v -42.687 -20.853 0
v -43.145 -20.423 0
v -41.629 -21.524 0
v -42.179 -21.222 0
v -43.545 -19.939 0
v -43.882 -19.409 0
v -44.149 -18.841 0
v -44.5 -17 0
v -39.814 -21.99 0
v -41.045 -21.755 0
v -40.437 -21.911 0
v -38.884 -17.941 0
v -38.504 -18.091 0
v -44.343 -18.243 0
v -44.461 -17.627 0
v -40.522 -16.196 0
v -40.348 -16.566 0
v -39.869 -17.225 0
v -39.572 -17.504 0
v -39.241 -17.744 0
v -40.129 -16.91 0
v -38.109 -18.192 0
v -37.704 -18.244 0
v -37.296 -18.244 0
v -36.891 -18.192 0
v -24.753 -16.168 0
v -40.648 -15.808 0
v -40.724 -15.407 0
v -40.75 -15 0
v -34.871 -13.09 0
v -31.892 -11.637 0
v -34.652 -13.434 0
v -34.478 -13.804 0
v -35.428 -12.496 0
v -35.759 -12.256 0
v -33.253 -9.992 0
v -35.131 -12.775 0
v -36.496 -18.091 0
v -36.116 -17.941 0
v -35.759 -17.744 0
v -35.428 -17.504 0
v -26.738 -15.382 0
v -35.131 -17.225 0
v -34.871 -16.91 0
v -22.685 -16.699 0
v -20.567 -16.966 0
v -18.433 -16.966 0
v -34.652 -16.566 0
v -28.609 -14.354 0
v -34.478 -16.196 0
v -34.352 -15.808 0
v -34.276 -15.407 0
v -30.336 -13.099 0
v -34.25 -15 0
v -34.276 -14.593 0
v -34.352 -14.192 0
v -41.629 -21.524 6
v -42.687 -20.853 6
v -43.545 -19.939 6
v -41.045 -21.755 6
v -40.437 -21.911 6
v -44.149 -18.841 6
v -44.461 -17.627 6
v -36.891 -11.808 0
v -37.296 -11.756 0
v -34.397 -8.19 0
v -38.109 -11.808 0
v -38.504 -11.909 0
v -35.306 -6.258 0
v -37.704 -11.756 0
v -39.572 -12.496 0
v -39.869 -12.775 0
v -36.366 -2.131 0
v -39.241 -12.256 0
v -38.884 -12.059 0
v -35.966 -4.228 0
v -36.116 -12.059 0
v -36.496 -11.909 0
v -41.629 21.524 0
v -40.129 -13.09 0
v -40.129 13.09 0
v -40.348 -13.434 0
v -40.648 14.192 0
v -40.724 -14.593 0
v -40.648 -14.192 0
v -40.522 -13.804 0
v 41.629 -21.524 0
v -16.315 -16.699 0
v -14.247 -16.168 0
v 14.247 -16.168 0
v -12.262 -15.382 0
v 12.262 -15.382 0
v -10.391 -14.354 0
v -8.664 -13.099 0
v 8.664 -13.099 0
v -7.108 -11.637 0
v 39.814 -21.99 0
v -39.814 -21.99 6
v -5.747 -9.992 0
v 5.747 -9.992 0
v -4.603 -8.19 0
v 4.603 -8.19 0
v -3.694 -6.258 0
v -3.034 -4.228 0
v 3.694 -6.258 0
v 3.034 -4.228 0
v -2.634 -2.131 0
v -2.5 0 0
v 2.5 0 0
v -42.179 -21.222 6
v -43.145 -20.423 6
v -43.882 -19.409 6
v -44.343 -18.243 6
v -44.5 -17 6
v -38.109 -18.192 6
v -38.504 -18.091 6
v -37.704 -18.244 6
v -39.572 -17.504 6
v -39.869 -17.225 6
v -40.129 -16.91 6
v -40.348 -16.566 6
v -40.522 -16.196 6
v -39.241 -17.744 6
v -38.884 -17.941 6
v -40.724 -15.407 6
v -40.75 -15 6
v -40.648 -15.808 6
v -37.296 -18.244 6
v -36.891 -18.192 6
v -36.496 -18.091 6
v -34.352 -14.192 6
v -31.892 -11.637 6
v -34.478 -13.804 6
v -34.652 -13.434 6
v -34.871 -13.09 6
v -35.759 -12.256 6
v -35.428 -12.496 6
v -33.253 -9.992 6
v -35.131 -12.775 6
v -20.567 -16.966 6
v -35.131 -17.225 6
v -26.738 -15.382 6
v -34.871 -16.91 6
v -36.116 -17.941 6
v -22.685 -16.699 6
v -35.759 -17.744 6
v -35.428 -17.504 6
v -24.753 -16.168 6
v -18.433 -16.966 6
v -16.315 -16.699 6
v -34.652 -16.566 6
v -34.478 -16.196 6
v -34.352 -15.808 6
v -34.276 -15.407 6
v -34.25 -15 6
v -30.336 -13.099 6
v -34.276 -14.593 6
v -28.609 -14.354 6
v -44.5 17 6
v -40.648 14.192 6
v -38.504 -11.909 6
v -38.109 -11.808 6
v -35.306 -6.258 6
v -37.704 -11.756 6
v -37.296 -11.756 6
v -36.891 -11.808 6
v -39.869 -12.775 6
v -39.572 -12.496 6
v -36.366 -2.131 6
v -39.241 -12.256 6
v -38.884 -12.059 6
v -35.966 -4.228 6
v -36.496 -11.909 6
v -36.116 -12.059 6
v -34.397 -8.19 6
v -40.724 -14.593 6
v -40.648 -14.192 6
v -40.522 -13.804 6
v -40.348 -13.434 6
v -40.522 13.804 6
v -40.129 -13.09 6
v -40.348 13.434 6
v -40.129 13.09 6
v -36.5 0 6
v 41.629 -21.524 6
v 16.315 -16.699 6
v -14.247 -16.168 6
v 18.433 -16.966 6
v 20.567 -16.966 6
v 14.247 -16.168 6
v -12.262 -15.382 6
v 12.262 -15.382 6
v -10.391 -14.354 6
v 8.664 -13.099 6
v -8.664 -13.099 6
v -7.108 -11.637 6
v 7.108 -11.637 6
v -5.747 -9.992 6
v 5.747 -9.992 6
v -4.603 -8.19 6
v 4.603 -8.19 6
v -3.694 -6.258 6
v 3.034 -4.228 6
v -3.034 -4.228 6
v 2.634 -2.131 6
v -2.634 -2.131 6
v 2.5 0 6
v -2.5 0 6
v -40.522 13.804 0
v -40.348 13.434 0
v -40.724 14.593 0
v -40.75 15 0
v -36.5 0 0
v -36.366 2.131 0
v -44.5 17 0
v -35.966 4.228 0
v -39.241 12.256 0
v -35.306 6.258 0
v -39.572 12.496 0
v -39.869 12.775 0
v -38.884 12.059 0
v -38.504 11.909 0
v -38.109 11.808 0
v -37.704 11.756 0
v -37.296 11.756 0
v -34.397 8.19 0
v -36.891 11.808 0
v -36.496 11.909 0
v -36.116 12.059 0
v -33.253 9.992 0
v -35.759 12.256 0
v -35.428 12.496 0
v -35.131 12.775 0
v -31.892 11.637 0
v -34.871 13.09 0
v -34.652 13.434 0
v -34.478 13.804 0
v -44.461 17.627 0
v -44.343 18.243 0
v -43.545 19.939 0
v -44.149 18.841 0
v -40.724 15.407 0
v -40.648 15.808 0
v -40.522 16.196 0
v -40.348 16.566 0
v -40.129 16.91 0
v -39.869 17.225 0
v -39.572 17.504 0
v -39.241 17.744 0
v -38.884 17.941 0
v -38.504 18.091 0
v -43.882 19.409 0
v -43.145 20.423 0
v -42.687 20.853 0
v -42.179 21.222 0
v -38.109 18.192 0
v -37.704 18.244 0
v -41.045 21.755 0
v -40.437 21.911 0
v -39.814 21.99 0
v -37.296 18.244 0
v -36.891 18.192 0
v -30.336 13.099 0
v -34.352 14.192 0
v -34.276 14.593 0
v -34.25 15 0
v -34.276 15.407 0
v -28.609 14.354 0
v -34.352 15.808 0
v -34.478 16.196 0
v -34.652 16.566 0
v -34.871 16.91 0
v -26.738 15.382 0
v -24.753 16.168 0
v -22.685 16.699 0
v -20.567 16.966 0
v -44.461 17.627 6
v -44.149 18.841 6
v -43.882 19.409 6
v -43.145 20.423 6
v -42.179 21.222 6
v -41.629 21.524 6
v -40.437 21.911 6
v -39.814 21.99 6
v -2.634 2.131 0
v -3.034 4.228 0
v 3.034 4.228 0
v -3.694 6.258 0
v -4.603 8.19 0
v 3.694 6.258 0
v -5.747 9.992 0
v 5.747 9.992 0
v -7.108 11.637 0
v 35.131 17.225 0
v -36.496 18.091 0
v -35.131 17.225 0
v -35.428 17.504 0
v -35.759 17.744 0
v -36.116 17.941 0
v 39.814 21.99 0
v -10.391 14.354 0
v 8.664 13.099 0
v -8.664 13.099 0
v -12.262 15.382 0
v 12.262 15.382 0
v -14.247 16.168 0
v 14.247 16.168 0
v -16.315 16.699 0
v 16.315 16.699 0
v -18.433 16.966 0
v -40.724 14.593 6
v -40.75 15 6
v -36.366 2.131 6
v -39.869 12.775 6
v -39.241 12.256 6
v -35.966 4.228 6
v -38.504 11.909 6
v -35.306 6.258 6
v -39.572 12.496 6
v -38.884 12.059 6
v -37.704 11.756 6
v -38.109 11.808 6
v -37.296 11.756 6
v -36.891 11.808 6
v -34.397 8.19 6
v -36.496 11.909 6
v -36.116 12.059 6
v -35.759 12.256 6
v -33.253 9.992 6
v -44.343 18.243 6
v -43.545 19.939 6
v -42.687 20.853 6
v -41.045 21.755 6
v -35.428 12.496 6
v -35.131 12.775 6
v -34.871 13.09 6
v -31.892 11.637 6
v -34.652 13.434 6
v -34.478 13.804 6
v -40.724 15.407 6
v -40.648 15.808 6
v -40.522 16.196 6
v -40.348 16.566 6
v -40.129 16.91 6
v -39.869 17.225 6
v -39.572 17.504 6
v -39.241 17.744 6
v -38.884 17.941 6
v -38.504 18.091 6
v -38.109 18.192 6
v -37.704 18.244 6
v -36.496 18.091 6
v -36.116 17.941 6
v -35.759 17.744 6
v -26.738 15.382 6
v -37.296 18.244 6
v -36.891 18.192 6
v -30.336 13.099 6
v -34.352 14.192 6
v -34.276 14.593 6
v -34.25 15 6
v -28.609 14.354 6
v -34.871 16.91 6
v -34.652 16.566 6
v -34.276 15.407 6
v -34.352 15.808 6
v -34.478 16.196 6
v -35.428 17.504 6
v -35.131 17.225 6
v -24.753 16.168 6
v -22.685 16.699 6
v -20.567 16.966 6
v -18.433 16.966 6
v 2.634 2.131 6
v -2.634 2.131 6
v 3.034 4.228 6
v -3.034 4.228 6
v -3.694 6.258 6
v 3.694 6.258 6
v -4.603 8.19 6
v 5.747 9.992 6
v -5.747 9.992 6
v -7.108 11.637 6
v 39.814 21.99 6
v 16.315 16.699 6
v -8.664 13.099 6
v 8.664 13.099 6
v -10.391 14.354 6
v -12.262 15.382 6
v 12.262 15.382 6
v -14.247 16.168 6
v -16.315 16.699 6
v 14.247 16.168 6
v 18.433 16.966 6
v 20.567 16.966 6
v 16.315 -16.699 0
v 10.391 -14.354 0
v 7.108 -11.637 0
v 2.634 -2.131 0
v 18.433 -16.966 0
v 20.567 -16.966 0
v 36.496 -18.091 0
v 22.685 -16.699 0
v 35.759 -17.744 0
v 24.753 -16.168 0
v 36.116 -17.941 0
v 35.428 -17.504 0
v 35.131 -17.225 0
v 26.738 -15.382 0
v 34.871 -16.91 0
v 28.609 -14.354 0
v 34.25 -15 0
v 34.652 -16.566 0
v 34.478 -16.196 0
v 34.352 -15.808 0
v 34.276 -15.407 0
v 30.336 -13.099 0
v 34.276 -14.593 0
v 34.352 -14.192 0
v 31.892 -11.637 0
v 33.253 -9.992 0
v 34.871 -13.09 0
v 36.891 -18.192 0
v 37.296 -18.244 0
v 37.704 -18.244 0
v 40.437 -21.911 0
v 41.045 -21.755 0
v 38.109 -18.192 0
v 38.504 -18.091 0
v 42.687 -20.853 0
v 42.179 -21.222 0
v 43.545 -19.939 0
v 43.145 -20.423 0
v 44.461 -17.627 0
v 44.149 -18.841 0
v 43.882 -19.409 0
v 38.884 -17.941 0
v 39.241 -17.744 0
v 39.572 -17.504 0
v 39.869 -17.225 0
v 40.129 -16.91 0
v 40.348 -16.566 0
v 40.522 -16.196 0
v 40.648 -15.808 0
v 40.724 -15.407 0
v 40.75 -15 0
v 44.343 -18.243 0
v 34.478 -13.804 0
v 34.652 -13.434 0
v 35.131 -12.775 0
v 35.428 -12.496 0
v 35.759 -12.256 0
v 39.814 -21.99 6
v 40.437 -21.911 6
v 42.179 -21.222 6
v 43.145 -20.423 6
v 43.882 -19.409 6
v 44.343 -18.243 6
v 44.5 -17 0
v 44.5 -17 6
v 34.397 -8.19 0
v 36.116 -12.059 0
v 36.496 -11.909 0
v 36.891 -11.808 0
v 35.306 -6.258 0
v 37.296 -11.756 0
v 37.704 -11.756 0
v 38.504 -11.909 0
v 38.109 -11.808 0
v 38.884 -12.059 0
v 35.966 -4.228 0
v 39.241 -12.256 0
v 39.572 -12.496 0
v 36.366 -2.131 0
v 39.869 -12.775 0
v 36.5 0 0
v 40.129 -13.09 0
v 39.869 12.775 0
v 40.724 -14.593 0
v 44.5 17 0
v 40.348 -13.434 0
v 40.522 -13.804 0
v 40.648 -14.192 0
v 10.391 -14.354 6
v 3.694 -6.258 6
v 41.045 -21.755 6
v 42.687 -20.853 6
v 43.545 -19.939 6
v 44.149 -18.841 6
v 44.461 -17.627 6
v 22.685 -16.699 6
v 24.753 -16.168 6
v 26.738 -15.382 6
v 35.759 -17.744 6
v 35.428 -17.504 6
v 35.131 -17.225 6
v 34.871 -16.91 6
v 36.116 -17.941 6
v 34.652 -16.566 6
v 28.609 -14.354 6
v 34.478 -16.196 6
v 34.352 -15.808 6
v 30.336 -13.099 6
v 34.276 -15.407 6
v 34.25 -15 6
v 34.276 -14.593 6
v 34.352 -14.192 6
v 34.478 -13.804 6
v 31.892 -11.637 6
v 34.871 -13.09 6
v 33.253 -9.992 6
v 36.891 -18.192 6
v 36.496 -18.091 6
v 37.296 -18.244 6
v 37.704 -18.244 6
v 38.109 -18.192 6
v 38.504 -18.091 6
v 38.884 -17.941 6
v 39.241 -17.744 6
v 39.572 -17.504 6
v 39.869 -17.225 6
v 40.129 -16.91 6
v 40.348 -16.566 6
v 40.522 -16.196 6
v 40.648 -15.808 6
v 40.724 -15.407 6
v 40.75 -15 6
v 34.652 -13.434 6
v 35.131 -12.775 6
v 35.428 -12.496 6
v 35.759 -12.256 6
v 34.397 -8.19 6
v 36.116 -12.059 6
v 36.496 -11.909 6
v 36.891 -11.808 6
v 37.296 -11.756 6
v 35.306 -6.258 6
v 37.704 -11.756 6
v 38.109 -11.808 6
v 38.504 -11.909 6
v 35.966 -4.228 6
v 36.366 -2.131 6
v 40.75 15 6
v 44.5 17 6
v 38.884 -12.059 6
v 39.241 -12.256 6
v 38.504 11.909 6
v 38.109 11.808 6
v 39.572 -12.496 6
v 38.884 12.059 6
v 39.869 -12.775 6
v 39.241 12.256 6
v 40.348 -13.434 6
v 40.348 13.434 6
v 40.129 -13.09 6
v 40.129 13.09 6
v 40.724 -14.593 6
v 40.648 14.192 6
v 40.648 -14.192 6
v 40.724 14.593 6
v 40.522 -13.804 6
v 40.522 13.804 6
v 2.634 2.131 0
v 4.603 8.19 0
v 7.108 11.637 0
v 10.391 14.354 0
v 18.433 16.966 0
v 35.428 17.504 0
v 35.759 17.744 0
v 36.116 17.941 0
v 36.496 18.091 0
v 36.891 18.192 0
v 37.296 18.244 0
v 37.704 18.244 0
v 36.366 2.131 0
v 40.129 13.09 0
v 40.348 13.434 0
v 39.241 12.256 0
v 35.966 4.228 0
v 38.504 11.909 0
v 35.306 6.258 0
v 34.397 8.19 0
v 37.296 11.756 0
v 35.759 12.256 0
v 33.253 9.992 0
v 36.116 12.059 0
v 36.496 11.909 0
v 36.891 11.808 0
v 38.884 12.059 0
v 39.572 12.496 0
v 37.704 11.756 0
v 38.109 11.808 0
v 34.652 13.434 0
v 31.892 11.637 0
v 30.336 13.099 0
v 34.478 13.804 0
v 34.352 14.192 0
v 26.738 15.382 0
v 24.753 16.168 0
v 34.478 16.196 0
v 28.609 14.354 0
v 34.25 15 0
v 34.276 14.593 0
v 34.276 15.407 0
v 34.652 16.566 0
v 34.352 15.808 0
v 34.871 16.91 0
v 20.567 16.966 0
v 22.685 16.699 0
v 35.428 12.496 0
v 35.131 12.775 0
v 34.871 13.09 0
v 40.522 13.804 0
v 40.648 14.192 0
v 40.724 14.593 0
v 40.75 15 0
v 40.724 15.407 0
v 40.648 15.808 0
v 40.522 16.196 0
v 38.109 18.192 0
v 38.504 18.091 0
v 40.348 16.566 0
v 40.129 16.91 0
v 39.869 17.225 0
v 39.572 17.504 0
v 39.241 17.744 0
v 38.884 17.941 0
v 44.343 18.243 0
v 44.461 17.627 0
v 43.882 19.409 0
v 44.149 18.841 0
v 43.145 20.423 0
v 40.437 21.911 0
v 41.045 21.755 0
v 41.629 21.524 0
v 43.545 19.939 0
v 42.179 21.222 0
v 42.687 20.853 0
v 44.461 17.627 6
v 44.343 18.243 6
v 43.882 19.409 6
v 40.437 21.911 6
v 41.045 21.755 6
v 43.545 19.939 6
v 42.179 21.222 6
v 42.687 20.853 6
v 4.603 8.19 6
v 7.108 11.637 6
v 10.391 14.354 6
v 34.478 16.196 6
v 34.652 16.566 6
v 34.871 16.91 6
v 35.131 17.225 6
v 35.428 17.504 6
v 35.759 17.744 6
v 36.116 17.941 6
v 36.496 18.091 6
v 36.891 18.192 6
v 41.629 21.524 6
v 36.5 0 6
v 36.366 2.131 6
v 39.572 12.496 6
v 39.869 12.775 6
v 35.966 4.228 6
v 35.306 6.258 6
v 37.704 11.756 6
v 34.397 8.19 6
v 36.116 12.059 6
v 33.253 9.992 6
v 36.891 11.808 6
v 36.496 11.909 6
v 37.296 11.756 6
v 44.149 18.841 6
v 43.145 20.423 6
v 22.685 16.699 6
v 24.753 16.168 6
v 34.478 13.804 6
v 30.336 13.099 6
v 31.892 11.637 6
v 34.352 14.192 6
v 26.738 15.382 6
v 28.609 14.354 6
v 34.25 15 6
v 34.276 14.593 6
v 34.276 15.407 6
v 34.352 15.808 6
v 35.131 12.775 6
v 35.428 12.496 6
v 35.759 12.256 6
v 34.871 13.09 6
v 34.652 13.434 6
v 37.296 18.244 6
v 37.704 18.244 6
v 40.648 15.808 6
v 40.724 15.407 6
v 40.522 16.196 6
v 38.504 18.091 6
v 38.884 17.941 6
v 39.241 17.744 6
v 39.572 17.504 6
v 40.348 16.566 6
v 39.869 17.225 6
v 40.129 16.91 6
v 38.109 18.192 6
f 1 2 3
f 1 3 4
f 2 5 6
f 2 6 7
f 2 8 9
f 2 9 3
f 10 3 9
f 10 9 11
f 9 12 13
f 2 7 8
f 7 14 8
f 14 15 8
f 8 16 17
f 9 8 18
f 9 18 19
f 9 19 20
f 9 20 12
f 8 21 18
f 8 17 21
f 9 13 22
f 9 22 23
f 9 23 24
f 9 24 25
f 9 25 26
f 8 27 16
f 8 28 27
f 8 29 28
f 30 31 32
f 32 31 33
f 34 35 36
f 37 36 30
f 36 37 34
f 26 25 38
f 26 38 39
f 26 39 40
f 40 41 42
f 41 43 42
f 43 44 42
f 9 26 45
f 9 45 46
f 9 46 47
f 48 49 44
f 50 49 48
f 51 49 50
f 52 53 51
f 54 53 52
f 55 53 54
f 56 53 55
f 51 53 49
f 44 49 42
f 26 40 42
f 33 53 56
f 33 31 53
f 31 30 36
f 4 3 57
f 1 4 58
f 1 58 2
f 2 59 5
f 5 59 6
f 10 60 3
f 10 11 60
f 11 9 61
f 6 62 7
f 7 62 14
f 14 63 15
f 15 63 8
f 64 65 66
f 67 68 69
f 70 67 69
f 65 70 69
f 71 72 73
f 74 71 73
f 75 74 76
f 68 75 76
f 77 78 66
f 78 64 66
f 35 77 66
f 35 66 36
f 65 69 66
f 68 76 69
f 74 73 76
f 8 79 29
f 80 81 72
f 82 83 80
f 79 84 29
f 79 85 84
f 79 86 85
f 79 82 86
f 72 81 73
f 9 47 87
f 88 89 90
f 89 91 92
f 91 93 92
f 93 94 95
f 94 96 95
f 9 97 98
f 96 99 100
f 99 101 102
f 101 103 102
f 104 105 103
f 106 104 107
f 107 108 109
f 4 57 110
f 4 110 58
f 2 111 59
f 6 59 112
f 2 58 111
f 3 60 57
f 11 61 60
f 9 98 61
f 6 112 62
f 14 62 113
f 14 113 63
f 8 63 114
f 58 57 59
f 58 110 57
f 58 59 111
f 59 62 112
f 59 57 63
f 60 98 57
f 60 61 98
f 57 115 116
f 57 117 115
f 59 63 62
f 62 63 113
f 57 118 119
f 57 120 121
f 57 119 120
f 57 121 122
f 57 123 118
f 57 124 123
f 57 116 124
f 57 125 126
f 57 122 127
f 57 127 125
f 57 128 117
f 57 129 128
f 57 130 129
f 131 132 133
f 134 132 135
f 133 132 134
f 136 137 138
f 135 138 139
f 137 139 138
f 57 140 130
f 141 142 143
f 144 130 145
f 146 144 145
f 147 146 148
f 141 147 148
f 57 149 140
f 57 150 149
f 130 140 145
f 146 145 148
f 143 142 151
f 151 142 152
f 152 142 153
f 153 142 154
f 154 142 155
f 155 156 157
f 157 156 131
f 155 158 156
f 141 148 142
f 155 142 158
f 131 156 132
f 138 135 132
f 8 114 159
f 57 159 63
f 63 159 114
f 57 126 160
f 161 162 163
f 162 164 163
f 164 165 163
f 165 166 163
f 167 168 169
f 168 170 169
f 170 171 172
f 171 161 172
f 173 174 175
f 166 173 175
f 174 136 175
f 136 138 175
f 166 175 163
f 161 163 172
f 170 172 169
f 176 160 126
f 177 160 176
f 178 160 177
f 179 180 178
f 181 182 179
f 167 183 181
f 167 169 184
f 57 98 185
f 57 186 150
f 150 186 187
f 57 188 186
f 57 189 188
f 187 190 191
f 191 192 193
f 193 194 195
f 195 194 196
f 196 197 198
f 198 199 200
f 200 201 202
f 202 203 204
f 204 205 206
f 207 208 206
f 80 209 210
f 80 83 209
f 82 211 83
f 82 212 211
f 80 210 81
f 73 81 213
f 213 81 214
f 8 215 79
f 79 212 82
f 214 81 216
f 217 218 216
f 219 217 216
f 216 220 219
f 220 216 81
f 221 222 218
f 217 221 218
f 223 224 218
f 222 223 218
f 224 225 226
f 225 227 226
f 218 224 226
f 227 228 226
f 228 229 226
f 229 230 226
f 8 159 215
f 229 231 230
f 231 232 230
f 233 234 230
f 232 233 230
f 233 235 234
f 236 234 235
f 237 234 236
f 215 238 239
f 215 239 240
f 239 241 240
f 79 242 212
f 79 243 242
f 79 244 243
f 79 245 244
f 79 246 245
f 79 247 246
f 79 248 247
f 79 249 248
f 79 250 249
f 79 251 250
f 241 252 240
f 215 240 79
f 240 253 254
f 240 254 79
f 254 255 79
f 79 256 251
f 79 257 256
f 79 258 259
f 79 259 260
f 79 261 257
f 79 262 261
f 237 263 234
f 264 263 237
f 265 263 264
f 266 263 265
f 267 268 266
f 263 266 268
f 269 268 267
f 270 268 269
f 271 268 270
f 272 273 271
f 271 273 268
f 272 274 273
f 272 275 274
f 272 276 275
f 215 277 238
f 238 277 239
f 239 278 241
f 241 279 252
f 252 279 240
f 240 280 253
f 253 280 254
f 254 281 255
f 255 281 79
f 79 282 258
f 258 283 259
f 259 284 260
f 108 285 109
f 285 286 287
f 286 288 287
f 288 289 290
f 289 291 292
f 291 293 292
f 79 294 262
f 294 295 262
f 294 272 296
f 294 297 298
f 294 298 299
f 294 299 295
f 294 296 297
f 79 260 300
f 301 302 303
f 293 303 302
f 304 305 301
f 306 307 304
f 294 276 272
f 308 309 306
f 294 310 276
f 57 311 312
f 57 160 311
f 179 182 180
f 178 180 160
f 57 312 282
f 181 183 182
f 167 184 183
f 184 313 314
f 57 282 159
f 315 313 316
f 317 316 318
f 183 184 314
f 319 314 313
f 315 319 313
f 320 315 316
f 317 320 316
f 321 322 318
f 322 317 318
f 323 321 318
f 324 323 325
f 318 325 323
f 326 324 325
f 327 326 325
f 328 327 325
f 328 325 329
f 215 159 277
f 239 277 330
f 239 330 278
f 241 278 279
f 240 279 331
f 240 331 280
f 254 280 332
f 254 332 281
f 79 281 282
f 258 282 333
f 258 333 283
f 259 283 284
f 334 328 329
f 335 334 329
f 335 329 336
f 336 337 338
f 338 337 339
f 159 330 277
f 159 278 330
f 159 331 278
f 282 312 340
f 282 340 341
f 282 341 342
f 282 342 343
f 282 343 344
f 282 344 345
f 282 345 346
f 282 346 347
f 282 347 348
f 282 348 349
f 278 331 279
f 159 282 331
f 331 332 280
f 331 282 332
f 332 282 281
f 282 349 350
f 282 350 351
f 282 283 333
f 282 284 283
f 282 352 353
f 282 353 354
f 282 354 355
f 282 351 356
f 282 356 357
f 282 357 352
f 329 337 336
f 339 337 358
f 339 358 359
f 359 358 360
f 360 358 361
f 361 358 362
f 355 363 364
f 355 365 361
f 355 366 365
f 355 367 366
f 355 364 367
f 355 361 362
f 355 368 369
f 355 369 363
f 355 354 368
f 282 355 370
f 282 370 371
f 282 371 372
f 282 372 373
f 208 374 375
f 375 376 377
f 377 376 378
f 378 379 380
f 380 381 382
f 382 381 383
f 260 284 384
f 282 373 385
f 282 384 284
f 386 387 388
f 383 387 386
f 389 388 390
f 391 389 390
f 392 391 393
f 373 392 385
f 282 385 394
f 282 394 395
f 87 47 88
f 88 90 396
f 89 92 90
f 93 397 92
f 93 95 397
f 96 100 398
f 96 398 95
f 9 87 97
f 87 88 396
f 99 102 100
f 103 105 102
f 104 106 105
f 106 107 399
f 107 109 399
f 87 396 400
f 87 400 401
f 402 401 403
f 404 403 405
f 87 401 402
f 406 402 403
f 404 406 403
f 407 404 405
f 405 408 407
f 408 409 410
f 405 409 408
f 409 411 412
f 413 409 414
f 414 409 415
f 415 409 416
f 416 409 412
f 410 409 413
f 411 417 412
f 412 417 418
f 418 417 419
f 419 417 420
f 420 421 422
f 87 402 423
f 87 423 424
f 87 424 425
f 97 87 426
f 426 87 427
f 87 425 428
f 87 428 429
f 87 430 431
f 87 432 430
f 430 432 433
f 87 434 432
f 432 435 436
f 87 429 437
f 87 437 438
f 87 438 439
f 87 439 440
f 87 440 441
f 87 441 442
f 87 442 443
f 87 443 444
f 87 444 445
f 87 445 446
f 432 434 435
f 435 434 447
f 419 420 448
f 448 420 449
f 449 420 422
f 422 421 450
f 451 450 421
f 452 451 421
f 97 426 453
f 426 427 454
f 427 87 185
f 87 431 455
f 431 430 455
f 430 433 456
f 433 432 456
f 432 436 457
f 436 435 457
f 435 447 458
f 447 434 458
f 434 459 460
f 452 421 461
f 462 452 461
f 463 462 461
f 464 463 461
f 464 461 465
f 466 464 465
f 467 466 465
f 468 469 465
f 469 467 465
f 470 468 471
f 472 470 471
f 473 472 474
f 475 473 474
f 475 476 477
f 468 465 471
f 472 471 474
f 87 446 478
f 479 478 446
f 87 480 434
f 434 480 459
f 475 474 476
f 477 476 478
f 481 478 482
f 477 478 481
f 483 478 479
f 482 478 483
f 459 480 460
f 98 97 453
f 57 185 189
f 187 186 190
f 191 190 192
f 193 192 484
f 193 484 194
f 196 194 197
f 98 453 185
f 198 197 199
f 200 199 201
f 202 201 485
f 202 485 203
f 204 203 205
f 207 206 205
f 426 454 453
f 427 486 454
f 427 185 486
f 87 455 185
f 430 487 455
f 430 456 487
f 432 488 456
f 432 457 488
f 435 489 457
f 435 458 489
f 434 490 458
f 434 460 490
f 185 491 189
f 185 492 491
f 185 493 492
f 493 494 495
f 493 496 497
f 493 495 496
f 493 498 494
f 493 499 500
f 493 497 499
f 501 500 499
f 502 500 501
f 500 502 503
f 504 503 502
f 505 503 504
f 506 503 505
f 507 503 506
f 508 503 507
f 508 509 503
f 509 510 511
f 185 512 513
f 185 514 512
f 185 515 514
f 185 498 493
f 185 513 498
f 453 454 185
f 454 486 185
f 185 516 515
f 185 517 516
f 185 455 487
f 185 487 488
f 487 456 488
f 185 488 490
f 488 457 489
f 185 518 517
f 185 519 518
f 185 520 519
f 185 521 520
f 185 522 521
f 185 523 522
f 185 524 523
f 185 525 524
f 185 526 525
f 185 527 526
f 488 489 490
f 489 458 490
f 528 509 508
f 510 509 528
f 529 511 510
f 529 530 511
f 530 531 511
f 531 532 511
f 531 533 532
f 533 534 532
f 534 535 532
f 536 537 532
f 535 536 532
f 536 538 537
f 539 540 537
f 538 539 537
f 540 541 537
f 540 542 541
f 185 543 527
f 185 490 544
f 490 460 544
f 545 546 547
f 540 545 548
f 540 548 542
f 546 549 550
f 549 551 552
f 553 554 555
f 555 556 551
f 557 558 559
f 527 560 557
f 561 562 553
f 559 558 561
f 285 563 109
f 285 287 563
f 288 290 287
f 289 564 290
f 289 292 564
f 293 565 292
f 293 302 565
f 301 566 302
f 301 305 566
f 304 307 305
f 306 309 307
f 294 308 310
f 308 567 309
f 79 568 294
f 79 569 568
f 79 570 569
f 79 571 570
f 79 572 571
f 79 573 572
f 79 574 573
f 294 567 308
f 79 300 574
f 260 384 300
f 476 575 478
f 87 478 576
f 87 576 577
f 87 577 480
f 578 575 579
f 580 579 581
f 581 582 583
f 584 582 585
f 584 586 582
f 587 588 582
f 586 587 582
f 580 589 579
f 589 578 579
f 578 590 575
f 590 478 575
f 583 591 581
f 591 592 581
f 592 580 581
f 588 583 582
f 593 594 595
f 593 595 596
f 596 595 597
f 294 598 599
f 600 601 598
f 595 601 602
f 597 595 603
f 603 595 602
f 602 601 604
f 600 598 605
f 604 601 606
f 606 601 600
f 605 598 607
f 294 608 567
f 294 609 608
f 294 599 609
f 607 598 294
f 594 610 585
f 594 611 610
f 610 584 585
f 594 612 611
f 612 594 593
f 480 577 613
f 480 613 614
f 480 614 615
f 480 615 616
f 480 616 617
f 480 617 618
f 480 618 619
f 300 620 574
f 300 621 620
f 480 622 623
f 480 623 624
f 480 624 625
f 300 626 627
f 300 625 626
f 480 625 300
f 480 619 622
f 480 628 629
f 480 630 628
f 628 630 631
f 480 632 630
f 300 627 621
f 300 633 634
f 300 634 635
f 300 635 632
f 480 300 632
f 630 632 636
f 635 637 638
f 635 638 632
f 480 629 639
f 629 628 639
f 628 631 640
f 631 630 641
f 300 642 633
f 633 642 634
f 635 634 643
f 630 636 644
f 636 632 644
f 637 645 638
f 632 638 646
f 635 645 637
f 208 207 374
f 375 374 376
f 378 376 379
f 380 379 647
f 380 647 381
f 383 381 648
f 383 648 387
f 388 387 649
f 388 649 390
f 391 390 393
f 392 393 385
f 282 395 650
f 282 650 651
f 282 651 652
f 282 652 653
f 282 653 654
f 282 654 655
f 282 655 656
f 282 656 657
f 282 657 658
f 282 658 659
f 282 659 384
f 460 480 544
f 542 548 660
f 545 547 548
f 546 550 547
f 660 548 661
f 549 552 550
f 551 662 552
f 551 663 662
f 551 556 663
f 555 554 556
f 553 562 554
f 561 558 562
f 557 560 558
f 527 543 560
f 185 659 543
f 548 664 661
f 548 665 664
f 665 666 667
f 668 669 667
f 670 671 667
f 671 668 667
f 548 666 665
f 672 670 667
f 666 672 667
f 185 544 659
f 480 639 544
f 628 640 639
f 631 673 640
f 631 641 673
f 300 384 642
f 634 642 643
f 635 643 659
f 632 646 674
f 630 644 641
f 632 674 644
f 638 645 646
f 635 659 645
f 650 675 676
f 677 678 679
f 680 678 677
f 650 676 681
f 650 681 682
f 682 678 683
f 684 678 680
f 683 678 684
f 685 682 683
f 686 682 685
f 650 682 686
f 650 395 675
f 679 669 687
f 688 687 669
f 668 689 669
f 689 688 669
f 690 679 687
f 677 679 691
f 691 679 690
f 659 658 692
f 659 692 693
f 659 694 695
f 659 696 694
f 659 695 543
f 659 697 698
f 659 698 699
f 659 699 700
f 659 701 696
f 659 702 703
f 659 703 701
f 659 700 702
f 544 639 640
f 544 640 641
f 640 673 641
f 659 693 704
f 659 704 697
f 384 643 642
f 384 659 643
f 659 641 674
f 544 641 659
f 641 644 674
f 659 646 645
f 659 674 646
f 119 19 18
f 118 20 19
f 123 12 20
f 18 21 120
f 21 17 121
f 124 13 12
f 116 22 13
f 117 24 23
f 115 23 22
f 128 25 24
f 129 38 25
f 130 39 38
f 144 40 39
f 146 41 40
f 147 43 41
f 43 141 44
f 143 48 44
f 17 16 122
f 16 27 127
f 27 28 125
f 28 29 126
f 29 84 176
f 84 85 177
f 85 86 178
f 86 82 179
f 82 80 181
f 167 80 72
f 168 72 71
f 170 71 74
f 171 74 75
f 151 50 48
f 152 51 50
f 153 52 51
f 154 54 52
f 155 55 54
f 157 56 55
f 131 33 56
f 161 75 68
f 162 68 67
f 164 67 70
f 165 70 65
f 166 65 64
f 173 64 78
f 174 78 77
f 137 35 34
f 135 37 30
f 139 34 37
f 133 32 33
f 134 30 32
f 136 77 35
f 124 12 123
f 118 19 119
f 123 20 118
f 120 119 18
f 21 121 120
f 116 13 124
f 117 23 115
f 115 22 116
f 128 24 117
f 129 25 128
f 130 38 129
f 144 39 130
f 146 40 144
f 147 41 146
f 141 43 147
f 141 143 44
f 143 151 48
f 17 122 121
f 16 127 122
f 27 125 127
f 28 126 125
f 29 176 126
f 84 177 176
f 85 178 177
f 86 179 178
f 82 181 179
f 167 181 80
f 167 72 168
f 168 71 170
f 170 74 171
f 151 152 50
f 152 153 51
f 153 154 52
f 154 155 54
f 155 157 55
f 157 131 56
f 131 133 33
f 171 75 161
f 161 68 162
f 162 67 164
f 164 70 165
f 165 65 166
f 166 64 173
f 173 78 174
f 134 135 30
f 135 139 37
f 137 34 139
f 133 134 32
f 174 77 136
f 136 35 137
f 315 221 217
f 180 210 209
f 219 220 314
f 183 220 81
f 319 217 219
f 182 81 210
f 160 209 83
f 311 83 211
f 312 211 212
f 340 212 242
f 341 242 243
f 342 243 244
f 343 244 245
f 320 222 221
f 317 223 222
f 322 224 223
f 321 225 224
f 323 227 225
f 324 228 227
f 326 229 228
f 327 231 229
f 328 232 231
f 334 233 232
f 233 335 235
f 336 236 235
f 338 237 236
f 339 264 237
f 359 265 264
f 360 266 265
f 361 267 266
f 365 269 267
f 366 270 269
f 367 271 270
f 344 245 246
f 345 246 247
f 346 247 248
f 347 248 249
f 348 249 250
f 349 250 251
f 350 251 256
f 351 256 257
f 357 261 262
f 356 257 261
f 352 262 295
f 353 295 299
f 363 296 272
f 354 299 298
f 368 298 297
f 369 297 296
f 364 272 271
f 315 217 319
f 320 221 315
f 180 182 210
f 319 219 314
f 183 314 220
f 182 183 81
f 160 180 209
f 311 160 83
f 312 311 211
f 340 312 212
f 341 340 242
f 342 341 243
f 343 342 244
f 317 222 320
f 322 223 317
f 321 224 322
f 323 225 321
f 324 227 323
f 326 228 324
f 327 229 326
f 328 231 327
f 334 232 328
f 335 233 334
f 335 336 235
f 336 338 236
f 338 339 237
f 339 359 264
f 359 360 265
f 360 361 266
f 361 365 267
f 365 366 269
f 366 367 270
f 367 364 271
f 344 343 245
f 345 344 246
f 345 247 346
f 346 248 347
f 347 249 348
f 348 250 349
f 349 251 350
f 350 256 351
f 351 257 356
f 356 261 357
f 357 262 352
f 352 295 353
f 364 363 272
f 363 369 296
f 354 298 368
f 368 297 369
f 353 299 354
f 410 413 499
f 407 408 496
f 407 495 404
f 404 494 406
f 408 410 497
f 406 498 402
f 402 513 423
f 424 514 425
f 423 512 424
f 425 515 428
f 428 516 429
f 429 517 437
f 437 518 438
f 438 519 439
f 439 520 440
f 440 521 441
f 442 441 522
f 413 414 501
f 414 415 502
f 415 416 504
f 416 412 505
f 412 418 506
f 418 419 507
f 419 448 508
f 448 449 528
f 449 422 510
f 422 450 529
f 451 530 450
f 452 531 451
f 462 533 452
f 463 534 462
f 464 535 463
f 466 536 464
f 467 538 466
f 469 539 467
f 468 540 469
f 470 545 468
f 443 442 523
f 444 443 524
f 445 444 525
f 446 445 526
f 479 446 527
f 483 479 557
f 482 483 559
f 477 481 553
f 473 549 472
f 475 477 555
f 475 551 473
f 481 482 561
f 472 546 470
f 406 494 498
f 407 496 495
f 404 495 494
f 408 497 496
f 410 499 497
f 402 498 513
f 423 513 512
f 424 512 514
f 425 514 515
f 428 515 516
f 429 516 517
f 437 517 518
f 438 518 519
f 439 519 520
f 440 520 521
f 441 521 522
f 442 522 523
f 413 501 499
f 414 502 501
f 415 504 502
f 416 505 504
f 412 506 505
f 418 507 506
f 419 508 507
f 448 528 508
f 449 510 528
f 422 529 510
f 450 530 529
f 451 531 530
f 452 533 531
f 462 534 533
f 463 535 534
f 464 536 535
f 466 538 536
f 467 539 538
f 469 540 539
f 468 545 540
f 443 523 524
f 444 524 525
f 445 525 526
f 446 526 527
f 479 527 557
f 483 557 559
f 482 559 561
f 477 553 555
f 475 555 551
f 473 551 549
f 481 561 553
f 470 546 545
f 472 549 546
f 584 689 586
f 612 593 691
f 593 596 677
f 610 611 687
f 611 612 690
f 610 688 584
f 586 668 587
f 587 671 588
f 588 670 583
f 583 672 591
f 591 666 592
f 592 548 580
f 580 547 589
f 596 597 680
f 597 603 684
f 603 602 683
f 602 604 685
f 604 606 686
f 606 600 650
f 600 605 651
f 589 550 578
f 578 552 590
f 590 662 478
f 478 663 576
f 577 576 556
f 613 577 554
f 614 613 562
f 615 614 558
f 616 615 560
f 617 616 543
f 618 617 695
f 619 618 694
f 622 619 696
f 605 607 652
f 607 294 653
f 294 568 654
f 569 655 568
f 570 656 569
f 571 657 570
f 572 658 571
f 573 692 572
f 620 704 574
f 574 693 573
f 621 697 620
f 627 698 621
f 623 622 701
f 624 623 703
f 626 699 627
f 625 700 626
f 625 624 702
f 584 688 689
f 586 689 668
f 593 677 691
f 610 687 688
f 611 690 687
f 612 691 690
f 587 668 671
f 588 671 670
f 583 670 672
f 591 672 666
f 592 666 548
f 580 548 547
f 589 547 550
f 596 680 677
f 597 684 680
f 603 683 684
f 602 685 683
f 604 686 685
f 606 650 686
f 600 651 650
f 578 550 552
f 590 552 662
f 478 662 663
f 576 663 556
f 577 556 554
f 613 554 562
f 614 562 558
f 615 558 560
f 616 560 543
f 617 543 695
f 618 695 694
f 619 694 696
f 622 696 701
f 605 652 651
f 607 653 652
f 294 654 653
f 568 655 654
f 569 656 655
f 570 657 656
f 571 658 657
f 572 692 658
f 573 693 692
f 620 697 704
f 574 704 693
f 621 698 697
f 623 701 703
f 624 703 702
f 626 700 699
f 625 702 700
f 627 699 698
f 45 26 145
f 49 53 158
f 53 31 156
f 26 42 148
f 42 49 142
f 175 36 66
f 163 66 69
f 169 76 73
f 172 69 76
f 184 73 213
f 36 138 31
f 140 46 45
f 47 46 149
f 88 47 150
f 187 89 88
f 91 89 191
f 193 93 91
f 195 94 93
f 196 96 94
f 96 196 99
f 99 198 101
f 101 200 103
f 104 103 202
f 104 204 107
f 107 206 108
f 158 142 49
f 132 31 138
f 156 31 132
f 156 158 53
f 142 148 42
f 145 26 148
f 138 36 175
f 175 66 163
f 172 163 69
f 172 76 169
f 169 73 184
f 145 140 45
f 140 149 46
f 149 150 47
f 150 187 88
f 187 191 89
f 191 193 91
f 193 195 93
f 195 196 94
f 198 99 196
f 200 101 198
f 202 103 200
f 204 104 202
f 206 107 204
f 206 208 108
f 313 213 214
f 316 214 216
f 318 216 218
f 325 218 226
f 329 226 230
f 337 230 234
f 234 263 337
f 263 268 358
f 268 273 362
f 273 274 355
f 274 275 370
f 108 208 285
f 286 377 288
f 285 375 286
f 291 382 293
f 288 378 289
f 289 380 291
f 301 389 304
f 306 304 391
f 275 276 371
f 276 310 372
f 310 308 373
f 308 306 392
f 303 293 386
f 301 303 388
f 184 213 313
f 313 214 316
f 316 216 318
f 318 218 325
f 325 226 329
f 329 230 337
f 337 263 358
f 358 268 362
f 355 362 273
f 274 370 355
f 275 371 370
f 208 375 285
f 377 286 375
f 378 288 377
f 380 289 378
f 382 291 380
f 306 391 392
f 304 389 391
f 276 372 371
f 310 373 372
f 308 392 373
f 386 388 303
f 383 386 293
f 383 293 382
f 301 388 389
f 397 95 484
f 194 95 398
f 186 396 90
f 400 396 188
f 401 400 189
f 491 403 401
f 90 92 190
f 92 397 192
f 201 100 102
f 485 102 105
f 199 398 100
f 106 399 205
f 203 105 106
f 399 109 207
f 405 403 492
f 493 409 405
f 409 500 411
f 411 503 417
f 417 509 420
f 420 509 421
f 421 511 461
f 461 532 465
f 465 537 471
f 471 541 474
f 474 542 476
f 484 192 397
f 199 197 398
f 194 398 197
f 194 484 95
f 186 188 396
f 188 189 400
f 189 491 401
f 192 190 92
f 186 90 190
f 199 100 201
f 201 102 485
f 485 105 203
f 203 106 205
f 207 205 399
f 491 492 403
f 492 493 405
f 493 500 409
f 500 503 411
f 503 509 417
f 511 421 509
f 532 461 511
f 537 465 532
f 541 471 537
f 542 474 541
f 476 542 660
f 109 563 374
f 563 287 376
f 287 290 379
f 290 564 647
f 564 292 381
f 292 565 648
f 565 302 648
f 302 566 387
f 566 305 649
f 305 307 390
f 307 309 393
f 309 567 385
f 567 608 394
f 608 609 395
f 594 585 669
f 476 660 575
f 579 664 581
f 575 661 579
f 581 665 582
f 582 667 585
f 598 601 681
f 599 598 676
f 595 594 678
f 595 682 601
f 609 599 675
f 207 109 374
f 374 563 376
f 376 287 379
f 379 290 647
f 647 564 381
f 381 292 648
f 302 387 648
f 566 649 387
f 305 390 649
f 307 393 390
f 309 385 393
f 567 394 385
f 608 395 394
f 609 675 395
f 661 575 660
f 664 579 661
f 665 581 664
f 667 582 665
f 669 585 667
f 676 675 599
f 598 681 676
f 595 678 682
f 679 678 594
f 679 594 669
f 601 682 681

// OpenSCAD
$fn = 50;

difference() {
	union() {
		hull() {
			translate(v = [-39.5, 17.0, 0]) {
				cylinder(h = 6, r = 5);
			}
			translate(v = [39.5, 17.0, 0]) {
				cylinder(h = 6, r = 5);
			}
			translate(v = [-39.5, -17.0, 0]) {
				cylinder(h = 6, r = 5);
			}
			translate(v = [39.5, -17.0, 0]) {
				cylinder(h = 6, r = 5);
			}
		}
	}
	union() {
		translate(v = [-37.5, -15.0, -100.0]) {
			cylinder(h = 200, r = 3.25);
		}
		translate(v = [-37.5, 15.0, -100.0]) {
			cylinder(h = 200, r = 3.25);
		}
		translate(v = [37.5, -15.0, -100.0]) {
			cylinder(h = 200, r = 3.25);
		}
		translate(v = [37.5, 15.0, -100.0]) {
			cylinder(h = 200, r = 3.25);
		}
		translate(v = [-37.5, -15.0, -100.0]) {
			cylinder(h = 200, r = 1.8);
		}
		translate(v = [-37.5, 15.0, -100.0]) {
			cylinder(h = 200, r = 1.8);
		}
		translate(v = [37.5, -15.0, -100.0]) {
			cylinder(h = 200, r = 1.8);
		}
		translate(v = [37.5, 15.0, -100.0]) {
			cylinder(h = 200, r = 1.8);
		}
		translate(v = [-19.5, 0, 0.0]) {
			cylinder(h = 6, r = 17.0);
		}
		translate(v = [19.5, 0, 0.0]) {
			cylinder(h = 6, r = 17.0);
		}
	}
}
